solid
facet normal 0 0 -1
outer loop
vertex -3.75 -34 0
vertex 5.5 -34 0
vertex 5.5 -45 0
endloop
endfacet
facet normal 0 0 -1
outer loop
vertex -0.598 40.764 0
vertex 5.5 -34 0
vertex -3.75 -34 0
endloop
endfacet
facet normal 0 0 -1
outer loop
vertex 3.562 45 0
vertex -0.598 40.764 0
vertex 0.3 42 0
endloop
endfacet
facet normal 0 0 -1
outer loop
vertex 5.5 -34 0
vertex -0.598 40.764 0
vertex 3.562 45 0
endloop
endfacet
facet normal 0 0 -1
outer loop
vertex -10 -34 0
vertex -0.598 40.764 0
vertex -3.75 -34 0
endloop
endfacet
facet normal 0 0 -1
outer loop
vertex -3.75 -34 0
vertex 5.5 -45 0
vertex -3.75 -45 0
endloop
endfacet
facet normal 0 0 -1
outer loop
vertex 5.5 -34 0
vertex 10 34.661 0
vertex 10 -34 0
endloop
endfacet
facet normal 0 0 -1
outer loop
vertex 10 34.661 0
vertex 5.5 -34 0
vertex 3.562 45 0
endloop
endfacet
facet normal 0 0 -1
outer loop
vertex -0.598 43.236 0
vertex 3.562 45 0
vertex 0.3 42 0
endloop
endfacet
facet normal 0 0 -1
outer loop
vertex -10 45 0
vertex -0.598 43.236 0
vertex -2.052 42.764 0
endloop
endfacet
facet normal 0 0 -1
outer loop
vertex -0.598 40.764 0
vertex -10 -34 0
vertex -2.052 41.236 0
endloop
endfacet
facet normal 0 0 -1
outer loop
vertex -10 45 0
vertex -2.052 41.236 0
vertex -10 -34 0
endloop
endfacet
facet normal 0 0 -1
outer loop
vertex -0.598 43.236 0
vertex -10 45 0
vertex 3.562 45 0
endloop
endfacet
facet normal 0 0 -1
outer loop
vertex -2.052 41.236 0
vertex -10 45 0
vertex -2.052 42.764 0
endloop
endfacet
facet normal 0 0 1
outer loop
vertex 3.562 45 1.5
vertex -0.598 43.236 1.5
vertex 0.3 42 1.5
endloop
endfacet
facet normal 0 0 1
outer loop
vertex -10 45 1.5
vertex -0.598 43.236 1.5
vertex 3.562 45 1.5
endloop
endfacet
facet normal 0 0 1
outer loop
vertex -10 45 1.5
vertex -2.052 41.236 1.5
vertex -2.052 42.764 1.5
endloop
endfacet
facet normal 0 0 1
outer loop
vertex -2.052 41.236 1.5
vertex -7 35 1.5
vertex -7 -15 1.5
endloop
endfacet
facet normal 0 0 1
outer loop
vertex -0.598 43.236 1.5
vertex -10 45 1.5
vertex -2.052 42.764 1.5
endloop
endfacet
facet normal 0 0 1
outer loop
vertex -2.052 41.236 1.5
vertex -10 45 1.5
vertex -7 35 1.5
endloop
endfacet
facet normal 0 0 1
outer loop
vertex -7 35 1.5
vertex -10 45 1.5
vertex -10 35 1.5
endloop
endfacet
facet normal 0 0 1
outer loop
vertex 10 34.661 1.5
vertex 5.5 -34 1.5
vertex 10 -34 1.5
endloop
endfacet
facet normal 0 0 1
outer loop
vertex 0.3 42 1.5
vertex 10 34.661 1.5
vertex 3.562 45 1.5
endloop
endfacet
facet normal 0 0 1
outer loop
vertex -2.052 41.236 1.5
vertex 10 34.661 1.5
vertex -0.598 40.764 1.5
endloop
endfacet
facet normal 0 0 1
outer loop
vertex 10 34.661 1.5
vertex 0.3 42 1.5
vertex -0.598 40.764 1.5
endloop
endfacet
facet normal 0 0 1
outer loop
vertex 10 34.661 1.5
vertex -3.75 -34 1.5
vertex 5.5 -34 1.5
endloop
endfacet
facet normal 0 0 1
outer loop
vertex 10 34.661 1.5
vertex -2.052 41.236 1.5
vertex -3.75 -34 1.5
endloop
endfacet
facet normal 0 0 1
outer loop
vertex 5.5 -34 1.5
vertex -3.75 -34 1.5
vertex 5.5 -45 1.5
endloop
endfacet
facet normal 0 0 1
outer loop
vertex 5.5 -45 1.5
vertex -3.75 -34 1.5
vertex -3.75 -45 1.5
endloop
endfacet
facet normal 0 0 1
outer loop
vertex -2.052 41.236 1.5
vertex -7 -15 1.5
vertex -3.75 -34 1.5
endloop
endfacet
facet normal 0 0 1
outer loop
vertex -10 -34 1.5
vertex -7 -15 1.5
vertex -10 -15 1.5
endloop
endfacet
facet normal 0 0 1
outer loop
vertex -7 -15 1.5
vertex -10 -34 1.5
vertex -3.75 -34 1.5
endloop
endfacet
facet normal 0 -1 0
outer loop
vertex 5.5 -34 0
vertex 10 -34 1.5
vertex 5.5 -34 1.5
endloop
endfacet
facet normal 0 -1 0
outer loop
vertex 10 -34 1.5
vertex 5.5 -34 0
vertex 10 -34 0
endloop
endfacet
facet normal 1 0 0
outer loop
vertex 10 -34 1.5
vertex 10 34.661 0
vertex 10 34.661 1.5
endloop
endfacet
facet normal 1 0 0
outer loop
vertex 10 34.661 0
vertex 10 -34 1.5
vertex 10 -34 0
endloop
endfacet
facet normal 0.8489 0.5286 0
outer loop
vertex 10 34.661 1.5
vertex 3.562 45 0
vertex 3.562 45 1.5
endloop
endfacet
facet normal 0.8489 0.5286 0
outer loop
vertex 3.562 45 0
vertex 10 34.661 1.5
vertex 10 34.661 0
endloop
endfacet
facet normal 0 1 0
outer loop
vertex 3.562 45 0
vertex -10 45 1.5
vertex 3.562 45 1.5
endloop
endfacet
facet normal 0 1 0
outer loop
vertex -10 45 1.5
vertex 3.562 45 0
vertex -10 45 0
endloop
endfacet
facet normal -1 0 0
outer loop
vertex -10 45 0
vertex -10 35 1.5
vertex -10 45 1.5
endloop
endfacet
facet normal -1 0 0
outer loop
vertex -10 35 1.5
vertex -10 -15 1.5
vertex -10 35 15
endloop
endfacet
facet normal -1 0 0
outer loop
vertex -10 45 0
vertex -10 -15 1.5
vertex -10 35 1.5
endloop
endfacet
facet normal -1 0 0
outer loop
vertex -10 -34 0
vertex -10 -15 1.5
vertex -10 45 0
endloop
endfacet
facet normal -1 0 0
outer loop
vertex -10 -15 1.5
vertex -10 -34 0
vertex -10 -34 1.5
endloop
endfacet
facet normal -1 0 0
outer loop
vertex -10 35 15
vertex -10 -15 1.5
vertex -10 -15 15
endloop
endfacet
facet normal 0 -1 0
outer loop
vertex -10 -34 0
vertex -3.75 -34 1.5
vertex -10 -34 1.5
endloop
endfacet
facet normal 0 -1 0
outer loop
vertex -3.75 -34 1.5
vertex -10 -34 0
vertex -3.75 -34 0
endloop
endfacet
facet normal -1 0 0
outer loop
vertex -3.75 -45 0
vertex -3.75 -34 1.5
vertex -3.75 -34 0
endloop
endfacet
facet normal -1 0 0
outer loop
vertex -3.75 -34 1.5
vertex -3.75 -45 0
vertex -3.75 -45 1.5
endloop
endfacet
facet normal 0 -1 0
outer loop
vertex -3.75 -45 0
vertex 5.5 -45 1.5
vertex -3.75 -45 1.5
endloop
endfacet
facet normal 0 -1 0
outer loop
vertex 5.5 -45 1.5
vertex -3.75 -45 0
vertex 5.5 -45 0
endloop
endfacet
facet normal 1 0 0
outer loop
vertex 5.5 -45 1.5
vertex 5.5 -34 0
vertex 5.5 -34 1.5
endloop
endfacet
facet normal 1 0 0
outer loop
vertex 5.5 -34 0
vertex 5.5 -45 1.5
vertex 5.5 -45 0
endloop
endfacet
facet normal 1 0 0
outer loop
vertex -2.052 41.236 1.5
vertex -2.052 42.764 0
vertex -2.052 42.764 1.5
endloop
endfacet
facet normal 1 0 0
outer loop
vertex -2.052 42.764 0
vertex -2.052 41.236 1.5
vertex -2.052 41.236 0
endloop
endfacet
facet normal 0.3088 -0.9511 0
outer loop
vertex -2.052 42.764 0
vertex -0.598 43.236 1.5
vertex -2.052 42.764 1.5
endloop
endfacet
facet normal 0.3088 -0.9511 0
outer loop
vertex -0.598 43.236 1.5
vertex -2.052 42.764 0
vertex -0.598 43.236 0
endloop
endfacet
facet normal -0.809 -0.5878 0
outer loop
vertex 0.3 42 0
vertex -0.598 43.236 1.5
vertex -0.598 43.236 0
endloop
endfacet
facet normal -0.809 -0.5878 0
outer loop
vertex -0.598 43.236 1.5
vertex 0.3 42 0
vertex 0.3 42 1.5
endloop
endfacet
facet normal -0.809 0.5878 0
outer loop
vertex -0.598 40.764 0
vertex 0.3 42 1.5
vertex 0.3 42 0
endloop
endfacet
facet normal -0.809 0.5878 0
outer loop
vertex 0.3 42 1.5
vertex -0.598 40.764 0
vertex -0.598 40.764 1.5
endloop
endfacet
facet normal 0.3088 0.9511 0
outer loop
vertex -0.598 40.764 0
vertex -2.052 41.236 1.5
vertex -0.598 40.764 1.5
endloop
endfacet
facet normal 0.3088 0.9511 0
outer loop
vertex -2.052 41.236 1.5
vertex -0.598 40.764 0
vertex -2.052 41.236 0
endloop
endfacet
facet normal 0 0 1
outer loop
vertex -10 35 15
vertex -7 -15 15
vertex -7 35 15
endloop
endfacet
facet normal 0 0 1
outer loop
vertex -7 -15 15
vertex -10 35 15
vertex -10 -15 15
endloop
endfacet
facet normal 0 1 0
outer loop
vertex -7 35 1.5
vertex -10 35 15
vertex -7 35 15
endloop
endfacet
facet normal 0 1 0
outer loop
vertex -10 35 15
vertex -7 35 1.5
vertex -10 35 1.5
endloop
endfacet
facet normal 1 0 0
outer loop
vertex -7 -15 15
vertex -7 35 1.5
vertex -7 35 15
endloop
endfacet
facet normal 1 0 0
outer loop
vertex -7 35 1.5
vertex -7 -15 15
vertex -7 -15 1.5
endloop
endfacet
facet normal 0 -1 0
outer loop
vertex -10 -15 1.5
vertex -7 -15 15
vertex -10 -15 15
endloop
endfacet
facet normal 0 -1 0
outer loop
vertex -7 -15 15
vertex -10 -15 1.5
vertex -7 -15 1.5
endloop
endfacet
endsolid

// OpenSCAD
module main() {
    difference() {
        square([20, 90], center=true);
        translate([-7, -40]) square([6.5,12], center=true);
        translate([8, -40]) square([5,12], center=true);
        translate([20/2-11, 90/2-3]) circle(1.3);
        polygon(points=[[20/2-6.5,90/2+0.1], [20/2+0.1, 90/2-10.5], [20/2+0.1,90/2+0.1]]);
    }
}

linear_extrude(height=1.5) main();

module hook() {
    translate([-20/2+1.5,10]) square([3,50], center=true);
}

linear_extrude(height=15) hook();
